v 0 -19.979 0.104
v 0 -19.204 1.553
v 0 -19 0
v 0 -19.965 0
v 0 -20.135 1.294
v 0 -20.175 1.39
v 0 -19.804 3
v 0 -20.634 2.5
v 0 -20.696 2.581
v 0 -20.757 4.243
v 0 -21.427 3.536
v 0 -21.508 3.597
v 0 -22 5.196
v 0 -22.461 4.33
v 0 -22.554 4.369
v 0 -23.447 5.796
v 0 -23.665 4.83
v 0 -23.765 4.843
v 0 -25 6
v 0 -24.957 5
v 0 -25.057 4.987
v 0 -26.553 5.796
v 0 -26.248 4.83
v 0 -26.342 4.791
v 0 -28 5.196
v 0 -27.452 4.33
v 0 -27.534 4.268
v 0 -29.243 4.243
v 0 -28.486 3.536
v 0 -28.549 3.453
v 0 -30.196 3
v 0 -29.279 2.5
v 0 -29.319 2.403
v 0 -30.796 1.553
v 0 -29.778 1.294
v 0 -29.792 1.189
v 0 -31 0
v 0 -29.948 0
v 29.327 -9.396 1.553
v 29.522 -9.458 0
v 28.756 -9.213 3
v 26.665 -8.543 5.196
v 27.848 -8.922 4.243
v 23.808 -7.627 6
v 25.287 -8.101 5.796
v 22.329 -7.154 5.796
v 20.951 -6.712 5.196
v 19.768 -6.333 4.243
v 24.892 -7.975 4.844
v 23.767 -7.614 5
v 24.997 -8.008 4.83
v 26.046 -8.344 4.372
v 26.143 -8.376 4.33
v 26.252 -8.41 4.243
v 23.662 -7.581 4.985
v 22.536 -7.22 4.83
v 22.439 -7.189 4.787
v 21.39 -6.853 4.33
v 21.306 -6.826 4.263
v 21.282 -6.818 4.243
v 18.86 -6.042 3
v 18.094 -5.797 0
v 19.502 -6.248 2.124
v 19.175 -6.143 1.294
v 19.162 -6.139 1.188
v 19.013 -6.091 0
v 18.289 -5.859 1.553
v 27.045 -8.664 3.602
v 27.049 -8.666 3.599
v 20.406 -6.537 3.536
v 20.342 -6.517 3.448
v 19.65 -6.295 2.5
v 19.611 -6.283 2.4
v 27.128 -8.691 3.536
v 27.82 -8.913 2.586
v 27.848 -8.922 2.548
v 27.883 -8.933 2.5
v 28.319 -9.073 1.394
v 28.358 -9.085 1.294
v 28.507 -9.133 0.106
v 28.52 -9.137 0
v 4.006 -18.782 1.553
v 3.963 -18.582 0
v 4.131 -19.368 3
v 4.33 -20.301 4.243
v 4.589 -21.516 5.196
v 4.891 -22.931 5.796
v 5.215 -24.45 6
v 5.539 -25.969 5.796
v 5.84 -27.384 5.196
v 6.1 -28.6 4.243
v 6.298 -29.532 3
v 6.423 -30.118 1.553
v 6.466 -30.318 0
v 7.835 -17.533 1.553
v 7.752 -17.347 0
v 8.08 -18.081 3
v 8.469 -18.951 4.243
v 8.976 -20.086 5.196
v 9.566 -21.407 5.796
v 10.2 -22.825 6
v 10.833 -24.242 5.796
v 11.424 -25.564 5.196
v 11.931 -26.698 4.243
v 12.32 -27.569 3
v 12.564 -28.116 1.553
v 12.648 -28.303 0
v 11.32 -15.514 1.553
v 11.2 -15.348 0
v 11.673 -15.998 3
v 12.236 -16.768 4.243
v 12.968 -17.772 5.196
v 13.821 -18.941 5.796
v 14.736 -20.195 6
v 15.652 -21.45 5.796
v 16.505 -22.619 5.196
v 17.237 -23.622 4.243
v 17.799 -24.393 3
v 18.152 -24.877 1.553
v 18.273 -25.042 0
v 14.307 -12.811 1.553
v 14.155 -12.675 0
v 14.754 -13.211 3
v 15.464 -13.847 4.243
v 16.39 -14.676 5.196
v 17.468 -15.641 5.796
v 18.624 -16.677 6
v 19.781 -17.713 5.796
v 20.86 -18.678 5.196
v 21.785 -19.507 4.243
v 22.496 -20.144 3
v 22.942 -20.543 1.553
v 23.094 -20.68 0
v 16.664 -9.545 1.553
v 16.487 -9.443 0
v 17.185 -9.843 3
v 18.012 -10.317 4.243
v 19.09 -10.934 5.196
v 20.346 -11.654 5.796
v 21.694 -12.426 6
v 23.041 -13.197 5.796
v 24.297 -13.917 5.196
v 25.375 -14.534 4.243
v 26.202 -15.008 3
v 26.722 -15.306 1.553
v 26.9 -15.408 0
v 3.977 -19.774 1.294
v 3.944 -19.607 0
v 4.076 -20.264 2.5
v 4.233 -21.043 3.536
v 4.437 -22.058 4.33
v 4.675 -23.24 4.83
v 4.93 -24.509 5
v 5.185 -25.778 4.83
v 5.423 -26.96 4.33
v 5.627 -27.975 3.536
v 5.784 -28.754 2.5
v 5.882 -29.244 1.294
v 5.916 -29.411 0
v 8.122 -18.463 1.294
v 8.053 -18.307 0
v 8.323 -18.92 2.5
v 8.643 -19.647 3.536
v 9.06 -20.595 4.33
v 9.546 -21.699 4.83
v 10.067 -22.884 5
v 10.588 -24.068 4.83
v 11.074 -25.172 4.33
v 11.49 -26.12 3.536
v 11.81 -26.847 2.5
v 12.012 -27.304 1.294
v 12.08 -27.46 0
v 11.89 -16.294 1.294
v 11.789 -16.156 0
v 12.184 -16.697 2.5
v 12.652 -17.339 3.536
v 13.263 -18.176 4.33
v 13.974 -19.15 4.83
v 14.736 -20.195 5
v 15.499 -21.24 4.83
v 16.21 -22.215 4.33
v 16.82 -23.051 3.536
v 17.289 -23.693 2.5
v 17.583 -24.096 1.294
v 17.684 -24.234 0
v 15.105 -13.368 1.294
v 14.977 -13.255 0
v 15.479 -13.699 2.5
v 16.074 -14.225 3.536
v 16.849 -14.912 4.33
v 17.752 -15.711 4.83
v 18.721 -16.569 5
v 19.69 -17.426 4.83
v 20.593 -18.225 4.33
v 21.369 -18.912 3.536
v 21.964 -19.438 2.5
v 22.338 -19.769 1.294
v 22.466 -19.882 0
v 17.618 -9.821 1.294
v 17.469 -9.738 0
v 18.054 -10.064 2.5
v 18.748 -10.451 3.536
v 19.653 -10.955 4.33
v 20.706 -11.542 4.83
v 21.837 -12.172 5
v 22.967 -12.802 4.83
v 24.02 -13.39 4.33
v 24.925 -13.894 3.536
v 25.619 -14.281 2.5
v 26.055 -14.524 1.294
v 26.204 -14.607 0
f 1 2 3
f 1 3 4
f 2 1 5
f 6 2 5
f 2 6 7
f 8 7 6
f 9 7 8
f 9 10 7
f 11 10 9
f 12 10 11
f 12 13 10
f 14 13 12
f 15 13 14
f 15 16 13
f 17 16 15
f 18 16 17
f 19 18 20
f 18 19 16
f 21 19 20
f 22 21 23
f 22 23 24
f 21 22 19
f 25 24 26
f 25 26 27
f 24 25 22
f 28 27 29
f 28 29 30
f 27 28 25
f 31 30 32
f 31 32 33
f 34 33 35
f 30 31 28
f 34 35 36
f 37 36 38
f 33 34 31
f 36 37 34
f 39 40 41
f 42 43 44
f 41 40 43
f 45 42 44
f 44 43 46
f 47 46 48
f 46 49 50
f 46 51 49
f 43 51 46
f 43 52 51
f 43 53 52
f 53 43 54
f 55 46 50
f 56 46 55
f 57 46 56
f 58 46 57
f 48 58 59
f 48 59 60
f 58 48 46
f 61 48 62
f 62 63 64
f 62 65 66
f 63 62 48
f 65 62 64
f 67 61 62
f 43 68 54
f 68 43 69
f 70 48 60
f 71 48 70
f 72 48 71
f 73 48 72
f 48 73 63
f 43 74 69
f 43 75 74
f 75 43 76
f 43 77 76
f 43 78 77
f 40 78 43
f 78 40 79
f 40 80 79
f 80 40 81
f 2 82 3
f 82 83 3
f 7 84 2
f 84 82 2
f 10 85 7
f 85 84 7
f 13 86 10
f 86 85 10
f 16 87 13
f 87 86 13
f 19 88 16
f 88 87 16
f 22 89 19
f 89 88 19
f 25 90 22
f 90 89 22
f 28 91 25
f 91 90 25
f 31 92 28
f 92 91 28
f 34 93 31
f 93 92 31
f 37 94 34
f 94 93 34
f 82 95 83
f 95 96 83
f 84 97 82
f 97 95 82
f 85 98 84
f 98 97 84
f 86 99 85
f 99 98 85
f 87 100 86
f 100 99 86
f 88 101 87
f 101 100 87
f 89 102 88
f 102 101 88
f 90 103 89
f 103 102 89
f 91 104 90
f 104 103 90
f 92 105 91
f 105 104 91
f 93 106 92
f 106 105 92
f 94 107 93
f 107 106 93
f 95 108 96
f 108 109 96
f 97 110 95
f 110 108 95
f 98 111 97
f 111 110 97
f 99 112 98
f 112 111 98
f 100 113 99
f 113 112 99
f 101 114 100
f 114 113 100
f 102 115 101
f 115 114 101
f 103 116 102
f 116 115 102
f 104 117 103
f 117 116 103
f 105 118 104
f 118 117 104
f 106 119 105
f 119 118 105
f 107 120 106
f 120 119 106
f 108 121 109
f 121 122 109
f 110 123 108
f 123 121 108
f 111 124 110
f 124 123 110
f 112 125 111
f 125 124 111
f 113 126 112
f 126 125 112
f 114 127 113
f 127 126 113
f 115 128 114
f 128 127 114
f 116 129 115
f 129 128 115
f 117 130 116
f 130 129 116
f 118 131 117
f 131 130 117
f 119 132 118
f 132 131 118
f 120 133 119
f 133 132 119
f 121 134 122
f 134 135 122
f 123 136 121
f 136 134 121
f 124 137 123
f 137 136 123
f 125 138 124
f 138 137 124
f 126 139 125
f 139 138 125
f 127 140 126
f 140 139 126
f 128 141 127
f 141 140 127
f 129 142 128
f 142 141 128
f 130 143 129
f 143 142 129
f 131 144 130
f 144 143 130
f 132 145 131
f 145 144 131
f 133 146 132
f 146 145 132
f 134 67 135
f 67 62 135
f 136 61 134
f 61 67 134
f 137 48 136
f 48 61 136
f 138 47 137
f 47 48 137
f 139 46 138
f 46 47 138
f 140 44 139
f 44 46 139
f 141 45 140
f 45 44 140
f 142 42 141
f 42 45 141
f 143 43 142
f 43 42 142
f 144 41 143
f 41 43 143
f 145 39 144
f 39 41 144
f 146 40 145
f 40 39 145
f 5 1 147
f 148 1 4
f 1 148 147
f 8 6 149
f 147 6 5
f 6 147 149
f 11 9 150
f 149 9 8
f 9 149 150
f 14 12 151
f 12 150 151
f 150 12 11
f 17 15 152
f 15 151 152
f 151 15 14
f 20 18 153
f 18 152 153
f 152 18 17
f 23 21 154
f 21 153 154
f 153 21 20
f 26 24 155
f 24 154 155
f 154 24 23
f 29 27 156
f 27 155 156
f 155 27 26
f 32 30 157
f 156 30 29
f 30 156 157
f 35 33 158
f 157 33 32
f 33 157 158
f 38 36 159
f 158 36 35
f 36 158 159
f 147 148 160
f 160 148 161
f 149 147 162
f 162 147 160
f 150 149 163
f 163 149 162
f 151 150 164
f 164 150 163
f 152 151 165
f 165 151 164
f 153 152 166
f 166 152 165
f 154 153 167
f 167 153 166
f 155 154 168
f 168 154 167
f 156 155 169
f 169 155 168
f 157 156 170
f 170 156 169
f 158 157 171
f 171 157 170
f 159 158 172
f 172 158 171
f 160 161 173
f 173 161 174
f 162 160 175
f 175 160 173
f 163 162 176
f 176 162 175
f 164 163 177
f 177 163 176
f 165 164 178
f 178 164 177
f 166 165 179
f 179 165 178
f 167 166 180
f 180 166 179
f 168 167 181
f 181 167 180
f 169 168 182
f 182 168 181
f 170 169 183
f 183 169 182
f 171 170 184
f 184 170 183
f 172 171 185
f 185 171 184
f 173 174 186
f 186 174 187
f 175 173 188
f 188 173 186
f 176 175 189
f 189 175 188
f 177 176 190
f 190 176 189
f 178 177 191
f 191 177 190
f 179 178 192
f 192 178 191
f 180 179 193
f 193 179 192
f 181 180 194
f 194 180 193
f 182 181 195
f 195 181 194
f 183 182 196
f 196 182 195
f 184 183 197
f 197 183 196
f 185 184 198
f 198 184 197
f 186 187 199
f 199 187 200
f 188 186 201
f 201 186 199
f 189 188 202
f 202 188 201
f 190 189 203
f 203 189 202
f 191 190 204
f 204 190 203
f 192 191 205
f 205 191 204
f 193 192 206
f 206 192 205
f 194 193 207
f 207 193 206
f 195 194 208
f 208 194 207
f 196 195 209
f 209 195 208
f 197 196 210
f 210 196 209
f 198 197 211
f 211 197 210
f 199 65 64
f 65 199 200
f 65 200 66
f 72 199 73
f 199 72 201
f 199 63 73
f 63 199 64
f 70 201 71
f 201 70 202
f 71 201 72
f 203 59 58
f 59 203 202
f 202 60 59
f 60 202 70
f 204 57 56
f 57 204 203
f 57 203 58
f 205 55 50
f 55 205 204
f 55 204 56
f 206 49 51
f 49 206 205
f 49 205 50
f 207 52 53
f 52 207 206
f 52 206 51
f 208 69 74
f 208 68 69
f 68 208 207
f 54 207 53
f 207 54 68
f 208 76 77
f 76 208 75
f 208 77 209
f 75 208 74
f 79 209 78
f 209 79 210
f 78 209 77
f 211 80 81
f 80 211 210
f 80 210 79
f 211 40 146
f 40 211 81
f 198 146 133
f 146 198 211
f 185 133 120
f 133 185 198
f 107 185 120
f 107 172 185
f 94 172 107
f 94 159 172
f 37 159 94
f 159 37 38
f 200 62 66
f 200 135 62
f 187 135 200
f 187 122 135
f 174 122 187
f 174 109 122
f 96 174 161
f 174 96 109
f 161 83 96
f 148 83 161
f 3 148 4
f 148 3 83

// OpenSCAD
// file: ../build_environments.scad
// build_environments.scad: modules to build level sections
//

module pool(diameter=10.0, wall_height=2.0, step_width=3.0, connections=[])
{
    difference() {
        union() {
        difference() {
            cylinder(h=0.5,r1=diameter+step_width,r2=diameter+step_width,$fn=48);
            translate([0,0,-0.1])
                cylinder(h=0.7,r1=diameter,r2=diameter,$fn=48);
        }
        difference() {
            cylinder(h=wall_height,r1=diameter+step_width+1.0,r2=diameter+step_width+1.0,$fn=48);
            translate([0,0,-0.1])
                cylinder(h=wall_height+0.2,r1=diameter+step_width,r2=diameter+step_width,$fn=48);
        }
        }
    
        for (c = connections)
        {
            rotate([0,90,0]) {
                angle = atan2(c[1],c[0]);
                rotate([-angle,0,0]) {
                    cylinder(h=diameter+5.0,r1=c[2],r2=c[2],$fn=48);
                }
            }
        }
    }
}

module straight(length=10.0, width=2.0, dy1=0.0, dy2=0.0, dz=0.0)
{
    dims = [0, 0, 0, 0, 0, (dz/length)];
    matrix = [
        [ 1, dims[0], dims[1], 0 ],
        [ dims[2], 1, dims[4], 0 ],
        [ dims[5], dims[3], 1, 0 ],
        [ 0, 0, 0, 1 ]
    ];
    multmatrix(matrix)
    difference() {
        translate([dy1,0,0])
        union() {
            rotate([0,90,0]) {
                difference() {
                    cylinder(h=(length-dy1-dy2),r1=width+1.0,r2=width+1.0,$fn=24);
                    translate([0,0,-0.1])
                        cylinder(h=(length-dy1-dy2+0.2),r1=width,r2=width,$fn=24);
                }
                difference() {
                    cylinder(h=1.0,r1=width+2.0,r2=width+2.0,$fn=24);
                    translate([0,0,-0.1])
                        cylinder(h=1.2,r1=width,r2=width,$fn=24);
                }
                translate([0,0,(length-dy1-dy2)-1.0]) {
                    difference() {
                        cylinder(h=1.0,r1=width+2.0,r2=width+2.0,$fn=24);
                        translate([0,0,-0.1])
                            cylinder(h=1.2,r1=width,r2=width,$fn=24);
                    }
                }
            }
        }
        translate([0,0,-(2*width+4.0)/2])
            cube([3*length,3*length,2*width+4.0],center=true);
    }
}

module curve(p0=[0,0], center=[0,0], dir=1, angle=0.0, width=2.0)
{
    radius = sqrt((p0[0]-center[0])*(p0[0]-center[0]) + (p0[1]-center[1])*(p0[1]-center[1]));
    if (dir == 0) {
        difference() {
            rotate([0,0,-90])
            difference() {
                rotate_extrude(angle = angle, convexity = 10, $fn=32)
                    translate([radius, 0, 0])
                        circle(r = width+1.0,$fn=24);
                rotate([0,0,-1.0])
                    rotate_extrude(angle = angle+2.0, convexity = 10, $fn=32)
                        translate([radius, 0, 0])
                            circle(r = width,$fn=24);
            }
            translate([0,0,-(2*width+4.0)/2])
                cube([5*radius,5*radius,2*width+4.0],center=true);
        }
    }
    else {
        difference() {
            rotate([0,0,90])
            difference() {
                rotate_extrude(angle = -angle, convexity = 10, $fn=32)
                    translate([radius, 0, 0])
                        circle(r = width+1.0,$fn=24);
                rotate([0,0,1.0])
                    rotate_extrude(angle = -angle-2.0, convexity = 10, $fn=32)
                        translate([radius, 0, 0])
                            circle(r = width,$fn=24);
            }
            translate([0,0,-(2*width+4.0)/2])
                cube([5*radius,5*radius,2*width+4.0],center=true);
        }
    }

}

// test pool
//pool(diameter=12.0000, wall_height=3.0000, step_width=3.0000, connections=[[0.0000,-26.0000,2.0000], [23.6074,0.0000,2.0000]]);

// test straight, slope
//straight(length=26.0000, width=2.0000, dy1=11.8322, dy2=6.7082, dz=0.0000);
//straight(length=29.1549, width=12.0000, dy1=0.0000, dy2=0.0000, dz=-15.0000);

// test curve
//curve(p0=[23.6074, 0.0000], center=[23.6074, 5.0000], dir=0, angle=60.1011, width=2.0000);
//curve(p0=[33.6426, 12.4219], center=[37.9771, 9.9295], dir=1, angle=120.4627, width=2.0000);
// main file
use <../build_environments.scad>;
curve(p0=[155.5672, -168.5356], center=[153.5484, -143.6172], dir=0, angle=72.2361, width=5.0000);
